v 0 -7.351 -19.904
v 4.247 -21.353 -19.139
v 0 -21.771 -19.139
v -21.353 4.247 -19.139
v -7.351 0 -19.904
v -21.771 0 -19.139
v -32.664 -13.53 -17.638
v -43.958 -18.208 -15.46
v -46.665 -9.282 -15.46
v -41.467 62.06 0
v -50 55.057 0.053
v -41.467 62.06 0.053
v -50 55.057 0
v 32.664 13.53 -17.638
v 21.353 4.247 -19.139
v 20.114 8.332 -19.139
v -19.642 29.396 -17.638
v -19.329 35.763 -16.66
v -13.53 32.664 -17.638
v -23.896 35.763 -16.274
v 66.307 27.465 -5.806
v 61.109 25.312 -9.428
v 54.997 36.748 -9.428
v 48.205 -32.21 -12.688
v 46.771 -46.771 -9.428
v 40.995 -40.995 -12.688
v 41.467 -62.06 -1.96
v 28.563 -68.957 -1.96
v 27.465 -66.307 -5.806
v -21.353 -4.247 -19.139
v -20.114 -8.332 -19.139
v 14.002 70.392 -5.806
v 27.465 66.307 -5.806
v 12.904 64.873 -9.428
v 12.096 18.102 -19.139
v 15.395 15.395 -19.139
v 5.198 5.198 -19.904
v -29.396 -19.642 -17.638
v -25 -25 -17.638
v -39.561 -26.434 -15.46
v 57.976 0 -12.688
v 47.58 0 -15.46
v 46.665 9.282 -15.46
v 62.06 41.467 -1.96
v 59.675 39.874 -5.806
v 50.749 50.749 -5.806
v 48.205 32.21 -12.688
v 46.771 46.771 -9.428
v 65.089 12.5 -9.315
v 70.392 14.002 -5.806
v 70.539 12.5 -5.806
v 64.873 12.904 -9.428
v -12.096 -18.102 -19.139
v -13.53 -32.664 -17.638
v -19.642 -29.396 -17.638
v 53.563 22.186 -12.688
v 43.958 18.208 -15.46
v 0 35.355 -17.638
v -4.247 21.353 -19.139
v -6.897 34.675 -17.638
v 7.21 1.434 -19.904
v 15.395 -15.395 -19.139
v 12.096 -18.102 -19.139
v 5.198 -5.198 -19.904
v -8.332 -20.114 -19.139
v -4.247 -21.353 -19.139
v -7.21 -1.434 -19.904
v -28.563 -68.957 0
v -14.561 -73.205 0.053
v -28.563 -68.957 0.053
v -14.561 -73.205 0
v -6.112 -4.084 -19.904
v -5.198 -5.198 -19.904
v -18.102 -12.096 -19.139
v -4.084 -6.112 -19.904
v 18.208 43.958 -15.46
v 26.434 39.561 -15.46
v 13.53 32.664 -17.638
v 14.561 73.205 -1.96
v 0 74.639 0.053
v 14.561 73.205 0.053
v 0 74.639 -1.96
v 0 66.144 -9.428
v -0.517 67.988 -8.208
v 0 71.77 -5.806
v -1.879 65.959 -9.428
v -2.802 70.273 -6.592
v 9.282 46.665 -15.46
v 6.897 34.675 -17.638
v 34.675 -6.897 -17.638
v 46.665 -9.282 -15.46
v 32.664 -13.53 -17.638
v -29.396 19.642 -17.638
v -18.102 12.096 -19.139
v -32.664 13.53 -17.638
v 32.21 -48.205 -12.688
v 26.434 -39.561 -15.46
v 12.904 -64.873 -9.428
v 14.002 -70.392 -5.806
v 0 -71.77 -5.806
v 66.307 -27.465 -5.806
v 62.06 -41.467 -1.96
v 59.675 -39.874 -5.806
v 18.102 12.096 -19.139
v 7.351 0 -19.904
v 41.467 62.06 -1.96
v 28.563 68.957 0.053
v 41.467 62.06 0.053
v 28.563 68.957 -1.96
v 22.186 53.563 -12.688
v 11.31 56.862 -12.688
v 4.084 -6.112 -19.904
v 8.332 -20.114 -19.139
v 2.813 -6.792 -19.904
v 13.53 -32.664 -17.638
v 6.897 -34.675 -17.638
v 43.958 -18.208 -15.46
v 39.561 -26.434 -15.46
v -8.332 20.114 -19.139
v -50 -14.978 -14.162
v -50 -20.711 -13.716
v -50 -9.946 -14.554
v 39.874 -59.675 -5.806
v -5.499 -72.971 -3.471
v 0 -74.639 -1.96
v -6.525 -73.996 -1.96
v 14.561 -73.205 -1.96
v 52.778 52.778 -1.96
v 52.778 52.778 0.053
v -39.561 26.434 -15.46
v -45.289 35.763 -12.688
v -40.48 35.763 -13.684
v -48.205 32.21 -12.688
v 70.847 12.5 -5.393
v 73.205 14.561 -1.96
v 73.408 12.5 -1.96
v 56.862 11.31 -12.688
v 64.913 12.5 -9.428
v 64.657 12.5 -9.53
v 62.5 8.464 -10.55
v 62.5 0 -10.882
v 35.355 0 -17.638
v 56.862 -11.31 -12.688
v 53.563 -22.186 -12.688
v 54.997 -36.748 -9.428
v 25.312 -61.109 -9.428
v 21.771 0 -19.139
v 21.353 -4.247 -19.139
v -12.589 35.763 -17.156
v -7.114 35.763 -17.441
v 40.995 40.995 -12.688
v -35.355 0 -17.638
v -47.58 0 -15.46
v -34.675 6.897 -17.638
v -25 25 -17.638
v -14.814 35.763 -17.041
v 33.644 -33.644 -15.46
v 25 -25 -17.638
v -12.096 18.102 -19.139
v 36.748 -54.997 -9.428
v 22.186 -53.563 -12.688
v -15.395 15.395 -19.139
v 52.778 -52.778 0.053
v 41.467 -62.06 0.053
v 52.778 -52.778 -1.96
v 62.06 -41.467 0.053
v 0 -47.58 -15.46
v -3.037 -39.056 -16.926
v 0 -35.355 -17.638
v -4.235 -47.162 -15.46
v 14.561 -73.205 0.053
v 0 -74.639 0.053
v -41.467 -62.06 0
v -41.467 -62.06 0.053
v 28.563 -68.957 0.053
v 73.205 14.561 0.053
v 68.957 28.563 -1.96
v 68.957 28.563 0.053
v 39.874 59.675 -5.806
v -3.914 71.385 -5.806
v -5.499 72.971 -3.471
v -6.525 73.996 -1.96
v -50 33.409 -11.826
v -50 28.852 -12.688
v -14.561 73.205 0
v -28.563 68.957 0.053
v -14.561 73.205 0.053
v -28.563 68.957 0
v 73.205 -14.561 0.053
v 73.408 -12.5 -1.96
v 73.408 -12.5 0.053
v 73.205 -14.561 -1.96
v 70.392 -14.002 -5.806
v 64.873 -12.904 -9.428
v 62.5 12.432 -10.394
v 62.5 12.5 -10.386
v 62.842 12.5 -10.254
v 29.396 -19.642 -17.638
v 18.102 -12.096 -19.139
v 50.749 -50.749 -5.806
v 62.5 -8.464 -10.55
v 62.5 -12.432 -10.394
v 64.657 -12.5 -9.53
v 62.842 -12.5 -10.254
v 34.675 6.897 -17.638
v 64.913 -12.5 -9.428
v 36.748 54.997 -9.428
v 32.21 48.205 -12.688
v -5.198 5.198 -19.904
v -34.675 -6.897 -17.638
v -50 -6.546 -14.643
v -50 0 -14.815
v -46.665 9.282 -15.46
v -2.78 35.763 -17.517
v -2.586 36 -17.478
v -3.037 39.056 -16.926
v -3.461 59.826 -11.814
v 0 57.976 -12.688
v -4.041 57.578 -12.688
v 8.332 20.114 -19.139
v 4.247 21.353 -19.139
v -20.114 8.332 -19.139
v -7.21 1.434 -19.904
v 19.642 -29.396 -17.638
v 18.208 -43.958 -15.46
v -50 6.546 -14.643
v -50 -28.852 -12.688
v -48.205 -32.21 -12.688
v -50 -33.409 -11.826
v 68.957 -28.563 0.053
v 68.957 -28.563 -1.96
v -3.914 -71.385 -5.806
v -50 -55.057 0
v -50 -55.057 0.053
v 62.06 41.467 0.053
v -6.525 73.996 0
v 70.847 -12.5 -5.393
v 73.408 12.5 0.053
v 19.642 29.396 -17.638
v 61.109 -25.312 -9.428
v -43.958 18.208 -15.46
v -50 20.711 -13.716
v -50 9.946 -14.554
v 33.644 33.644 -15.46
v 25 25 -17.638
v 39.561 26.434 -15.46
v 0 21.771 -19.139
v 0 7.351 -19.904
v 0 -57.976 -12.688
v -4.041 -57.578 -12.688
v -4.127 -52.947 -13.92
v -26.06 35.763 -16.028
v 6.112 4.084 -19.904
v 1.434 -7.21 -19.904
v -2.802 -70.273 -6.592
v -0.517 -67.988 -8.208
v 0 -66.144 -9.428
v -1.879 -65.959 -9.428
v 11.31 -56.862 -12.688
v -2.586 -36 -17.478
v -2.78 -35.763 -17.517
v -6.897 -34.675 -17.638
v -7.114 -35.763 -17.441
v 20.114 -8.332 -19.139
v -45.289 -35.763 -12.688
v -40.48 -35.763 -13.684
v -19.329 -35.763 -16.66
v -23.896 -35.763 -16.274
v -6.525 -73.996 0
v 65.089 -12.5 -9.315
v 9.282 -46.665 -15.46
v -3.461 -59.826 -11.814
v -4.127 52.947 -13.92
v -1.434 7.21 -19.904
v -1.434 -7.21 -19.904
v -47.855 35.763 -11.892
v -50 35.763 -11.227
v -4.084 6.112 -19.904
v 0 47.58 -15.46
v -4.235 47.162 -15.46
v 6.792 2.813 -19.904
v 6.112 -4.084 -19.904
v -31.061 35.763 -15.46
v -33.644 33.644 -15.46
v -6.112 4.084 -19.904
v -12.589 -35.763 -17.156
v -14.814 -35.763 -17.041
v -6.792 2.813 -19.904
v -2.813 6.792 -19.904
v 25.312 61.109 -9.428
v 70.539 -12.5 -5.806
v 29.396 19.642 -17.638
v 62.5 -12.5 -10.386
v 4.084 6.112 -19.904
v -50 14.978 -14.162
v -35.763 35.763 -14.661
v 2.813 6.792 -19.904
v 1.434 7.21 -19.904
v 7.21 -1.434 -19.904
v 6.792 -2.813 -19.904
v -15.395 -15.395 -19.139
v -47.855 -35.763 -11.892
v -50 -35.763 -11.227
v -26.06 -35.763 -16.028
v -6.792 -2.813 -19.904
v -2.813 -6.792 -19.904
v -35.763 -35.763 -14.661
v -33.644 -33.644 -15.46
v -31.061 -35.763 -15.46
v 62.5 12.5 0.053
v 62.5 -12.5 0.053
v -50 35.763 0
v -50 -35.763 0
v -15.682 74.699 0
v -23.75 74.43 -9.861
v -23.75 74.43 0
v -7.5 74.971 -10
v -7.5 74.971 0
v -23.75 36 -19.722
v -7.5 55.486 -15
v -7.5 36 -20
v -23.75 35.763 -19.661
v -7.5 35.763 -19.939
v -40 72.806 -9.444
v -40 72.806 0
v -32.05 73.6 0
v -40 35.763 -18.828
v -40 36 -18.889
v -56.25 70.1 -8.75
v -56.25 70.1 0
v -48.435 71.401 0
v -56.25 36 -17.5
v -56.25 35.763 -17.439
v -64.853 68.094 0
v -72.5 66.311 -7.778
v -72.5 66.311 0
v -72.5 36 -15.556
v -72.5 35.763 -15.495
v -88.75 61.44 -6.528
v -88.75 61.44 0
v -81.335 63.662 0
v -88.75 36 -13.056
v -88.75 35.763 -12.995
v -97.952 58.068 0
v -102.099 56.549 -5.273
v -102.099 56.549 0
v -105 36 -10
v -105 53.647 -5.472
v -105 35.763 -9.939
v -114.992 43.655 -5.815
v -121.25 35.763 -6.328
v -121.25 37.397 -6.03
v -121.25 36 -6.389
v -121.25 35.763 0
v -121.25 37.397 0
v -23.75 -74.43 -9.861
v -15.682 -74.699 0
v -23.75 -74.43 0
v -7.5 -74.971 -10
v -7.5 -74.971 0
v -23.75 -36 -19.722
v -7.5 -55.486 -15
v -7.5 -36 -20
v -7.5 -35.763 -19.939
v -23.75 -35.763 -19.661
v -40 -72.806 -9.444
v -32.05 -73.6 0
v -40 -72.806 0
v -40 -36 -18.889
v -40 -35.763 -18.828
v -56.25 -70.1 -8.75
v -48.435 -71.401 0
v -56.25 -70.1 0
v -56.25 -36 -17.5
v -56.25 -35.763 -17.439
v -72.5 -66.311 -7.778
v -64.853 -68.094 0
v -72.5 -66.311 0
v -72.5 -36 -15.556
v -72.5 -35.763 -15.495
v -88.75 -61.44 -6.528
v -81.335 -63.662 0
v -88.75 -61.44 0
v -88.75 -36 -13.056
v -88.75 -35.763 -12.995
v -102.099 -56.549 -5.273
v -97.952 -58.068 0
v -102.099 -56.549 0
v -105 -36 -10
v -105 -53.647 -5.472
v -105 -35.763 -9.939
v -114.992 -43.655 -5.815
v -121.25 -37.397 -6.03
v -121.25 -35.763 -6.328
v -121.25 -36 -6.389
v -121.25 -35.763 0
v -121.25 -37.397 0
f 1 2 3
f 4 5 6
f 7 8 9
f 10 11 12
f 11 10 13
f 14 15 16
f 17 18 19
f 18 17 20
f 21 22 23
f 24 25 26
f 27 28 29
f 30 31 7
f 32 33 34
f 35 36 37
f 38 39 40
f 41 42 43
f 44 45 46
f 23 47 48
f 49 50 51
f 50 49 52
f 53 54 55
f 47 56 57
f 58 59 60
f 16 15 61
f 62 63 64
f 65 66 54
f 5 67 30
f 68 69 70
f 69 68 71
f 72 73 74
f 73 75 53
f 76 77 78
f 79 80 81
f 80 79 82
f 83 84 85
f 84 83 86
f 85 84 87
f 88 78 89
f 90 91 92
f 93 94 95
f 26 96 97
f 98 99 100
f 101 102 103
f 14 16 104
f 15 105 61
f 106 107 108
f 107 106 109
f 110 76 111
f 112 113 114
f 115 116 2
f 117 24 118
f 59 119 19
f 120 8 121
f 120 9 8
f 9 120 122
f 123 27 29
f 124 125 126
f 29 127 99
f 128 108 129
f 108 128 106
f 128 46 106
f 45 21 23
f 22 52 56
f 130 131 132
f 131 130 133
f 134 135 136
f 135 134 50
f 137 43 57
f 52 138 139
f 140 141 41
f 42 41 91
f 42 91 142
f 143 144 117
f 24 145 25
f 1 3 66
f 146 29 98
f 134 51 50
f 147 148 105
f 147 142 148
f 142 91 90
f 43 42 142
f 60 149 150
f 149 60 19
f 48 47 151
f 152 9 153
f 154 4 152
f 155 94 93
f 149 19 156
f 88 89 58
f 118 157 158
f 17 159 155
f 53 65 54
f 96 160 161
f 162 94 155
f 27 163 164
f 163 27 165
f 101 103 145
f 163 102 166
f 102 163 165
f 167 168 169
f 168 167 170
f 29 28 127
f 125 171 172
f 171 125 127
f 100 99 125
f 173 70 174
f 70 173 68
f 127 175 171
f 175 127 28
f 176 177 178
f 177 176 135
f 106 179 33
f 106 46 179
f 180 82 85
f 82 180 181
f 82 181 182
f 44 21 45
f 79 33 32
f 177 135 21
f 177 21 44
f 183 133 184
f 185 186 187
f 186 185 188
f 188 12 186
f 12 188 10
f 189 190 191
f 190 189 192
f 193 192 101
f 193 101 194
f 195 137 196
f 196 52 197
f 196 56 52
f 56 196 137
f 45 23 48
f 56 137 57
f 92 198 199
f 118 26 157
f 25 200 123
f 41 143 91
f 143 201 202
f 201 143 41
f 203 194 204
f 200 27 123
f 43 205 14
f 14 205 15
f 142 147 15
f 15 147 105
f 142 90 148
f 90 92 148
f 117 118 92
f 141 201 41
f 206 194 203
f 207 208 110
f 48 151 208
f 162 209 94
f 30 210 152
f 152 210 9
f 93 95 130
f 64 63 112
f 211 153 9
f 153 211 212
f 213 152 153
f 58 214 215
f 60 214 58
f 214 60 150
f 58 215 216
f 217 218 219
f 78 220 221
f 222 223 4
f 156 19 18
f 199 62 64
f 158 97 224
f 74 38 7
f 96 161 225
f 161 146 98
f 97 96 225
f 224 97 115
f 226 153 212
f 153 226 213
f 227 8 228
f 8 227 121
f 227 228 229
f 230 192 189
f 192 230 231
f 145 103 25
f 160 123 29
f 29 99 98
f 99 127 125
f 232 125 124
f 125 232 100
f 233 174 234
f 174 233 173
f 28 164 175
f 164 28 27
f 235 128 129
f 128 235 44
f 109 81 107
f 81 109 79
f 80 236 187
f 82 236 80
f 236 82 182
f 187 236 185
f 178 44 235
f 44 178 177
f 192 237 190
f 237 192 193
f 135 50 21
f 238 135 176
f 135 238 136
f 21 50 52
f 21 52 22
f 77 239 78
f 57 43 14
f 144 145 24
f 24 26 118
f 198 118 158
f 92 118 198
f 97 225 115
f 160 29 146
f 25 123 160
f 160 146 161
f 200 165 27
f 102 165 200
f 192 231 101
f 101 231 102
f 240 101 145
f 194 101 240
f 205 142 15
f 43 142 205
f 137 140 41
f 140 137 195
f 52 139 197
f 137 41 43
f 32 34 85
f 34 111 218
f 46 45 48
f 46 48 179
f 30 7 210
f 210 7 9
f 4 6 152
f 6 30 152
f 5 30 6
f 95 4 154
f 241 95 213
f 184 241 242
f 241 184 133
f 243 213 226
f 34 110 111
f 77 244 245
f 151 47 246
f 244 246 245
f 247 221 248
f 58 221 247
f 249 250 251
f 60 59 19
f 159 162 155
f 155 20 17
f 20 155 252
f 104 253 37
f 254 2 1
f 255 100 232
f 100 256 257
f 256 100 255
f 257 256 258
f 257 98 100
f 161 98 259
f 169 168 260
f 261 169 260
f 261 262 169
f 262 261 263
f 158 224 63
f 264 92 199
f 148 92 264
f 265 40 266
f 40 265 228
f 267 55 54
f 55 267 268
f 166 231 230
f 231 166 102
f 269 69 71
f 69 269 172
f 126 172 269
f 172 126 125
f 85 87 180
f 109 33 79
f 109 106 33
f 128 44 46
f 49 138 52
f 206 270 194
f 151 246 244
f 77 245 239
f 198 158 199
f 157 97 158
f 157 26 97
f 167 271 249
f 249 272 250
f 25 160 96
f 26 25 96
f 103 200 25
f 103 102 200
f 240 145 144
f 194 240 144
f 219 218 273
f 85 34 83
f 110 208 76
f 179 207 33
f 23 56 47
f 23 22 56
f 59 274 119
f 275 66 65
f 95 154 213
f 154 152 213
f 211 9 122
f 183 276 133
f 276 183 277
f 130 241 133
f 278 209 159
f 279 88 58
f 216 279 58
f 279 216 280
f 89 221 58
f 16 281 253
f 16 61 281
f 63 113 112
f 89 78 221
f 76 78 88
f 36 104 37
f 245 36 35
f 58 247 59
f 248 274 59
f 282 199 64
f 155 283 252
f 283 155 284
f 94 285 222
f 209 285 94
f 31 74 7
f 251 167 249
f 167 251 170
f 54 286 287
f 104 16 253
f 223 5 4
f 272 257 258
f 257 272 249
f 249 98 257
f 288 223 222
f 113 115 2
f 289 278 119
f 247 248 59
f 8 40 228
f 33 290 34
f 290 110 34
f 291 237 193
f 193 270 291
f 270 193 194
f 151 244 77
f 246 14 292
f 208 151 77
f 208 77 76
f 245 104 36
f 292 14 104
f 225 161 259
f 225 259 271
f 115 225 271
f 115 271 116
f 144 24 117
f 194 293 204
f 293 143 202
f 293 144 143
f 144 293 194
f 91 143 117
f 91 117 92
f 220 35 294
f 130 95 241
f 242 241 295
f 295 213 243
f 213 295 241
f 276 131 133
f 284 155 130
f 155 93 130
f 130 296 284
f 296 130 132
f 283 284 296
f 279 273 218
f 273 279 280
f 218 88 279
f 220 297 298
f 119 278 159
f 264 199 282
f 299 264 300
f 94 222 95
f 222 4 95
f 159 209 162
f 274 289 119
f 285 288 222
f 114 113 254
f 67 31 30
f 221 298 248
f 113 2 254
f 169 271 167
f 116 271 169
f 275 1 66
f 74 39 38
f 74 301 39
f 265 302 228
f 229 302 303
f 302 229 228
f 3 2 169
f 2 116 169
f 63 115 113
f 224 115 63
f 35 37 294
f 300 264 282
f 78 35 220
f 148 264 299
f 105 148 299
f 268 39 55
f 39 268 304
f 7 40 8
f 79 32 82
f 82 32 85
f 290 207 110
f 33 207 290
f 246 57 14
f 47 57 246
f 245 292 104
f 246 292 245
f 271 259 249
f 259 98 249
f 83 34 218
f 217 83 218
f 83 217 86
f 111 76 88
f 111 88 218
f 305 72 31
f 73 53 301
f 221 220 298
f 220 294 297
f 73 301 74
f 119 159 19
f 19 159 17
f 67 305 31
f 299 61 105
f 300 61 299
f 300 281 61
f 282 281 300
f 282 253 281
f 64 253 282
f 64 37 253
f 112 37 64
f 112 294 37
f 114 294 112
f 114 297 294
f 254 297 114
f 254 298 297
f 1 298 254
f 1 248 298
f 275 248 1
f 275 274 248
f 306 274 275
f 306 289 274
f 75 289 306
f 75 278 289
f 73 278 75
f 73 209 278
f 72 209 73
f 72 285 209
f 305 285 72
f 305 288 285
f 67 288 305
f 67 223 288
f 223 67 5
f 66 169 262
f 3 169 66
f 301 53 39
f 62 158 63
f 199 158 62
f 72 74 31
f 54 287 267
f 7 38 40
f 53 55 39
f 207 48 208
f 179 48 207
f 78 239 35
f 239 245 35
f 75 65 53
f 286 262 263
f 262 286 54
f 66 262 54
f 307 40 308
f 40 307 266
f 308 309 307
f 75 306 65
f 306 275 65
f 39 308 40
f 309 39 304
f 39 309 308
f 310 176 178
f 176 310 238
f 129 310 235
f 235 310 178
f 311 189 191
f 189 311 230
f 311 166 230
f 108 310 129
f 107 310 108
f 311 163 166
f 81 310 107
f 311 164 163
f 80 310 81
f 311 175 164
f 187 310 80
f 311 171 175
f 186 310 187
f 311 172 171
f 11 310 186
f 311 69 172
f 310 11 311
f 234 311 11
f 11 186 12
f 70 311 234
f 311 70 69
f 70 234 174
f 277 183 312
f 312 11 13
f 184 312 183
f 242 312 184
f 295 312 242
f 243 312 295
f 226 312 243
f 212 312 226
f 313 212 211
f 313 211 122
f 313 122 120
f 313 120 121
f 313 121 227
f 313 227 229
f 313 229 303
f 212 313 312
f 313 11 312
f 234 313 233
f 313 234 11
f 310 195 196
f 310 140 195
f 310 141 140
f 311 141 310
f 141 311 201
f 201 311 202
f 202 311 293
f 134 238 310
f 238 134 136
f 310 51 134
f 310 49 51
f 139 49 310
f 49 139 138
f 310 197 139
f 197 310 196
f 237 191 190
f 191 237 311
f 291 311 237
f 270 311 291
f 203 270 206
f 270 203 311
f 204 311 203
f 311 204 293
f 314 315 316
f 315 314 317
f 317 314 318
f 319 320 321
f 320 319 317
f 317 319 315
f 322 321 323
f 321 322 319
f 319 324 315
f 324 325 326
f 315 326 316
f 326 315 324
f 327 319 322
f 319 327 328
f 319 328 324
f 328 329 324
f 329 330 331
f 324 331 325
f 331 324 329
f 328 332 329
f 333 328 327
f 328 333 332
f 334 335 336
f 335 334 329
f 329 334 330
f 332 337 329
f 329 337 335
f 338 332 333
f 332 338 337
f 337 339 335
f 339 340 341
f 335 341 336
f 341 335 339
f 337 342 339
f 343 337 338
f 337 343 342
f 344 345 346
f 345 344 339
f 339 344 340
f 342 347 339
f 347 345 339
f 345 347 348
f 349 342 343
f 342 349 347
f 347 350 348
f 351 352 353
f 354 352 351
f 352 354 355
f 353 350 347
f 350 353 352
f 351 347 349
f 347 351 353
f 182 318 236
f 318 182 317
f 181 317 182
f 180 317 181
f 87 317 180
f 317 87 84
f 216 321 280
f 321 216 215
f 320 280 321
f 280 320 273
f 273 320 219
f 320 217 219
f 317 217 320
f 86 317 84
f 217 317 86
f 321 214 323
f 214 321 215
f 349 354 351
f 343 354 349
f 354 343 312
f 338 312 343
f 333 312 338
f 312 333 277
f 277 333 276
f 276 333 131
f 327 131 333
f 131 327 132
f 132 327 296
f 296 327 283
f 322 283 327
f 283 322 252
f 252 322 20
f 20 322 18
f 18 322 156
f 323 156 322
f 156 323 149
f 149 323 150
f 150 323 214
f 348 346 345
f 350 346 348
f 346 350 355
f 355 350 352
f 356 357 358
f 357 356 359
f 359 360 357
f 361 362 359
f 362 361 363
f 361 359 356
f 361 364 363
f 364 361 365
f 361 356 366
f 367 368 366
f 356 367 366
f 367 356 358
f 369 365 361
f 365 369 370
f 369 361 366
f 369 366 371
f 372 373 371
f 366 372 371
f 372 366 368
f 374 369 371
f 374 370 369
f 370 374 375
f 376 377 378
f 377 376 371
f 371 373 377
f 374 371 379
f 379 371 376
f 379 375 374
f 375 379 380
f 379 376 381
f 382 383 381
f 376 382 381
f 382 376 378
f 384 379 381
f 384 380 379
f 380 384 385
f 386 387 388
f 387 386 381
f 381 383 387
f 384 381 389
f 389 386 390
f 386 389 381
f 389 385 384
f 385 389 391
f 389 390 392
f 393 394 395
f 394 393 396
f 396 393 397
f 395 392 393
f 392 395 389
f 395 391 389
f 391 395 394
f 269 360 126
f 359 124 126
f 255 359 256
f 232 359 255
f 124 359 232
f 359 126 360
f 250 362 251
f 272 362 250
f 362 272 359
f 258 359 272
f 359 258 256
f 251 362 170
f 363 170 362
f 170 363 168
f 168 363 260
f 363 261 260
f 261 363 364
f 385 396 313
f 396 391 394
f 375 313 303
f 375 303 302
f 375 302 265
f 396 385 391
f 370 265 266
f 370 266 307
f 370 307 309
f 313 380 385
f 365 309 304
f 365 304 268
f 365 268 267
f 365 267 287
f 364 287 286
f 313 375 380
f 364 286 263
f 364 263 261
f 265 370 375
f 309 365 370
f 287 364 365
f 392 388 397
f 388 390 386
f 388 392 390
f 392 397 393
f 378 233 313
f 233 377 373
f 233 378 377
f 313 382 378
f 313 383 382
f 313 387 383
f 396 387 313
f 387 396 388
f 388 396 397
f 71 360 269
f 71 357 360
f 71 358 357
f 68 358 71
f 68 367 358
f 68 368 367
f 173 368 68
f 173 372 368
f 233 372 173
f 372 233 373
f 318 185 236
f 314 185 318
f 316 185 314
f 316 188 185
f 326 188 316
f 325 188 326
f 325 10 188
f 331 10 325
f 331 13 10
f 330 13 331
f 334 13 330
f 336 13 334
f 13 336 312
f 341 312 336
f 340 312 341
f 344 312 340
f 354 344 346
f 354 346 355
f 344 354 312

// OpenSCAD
// file: ../lib/util.scad
fn1 = 32;
fn2 = 16;

module util_half_sphere(radius, fn=fn1) {
    difference() {
        sphere(radius, $fn=fn);
        translate([0,0,-(radius+radius/19)])
            cube(2*radius+radius/10, center=true);
    }
}

function gcd(a,b) = a == b ? a : a > b ? gcd(a-b, b) : gcd(a, b-a);

module util_saucer(length, width, height, fn=fn1) {
    rad = gcd(length,gcd(width,height));
    //rad = 10;
    scale([length/(2*rad), width/(2*rad), height/rad])
        util_half_sphere(rad, fn);
}

module util_half_cylinder(length, radius, inner_fn=fn2, outer_fn=fn1) {
    maxval = max(length, 2*radius);
    intersection() {
        difference() {
            rotate([0,90,0])
                translate([0,0,-(length/2 + length/20)])
                    cylinder(length+length/10, radius, radius, $fn=inner_fn);
            
            translate([0,0,(maxval/2 + maxval/19)])
                cube(maxval+maxval/10, center=true);
        }
        
        translate([0,0,-(radius+radius/20)])
            cylinder(radius + radius/10, length/2, length/2, $fn=outer_fn);
    }
}

module util_body(length, width, height, upper_height, fn=fn1) {
    rad = gcd(length, gcd(width, upper_height));
    
    scale(.995) scale([length/(2*rad), width/(2*rad), 1])
        util_half_cylinder(2*rad, height, outer_fn=fn);
}

module util_graded_cylinder(height, radius_start, radius_end, grades=1, fn=fn1) {
    height_grade = height / grades;
    radius_grade = (radius_start - radius_end) / (grades * grades);
    for (i = [0 : 1 : grades]) {
        translate([0,0,i*height_grade])
            cylinder(height_grade, 
                     radius_start - i*radius_grade * i,
                     radius_start - (i+1) * radius_grade * (i+1),
                     $fn = fn);
    }
}

module util_nacelle(length, width, height, curved=false, up=true, front_bulge=false) {
    rad = min(width, height/2);
    grads = curved ? 6 : 1;
    scale_factor = front_bulge ? 1.1 : 1;
    direction = up ? -1 : 1;
    difference() {
        scale([1, width/ (2*rad), height/rad])
            difference() {
                union() {
                    rotate([0,-90,0])
                        rotate(30)
                            util_graded_cylinder(length-rad, rad, rad/2, grads, 6);
                    scale(scale_factor) 
                        rotate([0,90,0]) rotate(90) sphere(rad, $fn=6);
                }
                
                translate([-length/2, 0, direction * (height/2 + height/19)])
                    cube([length+length, width+width, height+height/10], center=true);
            }
        
        translate([-length-(curved?length/3:0), 0, -length/3])
            rotate([0,-45,0])
                cube(length, center=true);
    }
}

module util_mirrored(v) {
    children();
    mirror(v) children();
}

module util_ring(outer, inner, height) {
    difference() {
        translate([0,0,-height/2])
            cylinder(height, outer, outer);
        translate([0,0,-(height/2 + height/19)])
            cylinder(height+height/10, inner, inner);
    }
}

module util_star(radius, thick, num, half=false) {
    angle = 360/num;
    offset = half? angle/2 : 0;
    for (i = [0: 1: num]) {
        rotate(i* angle + offset)
            translate([radius/2,0,0])
                cube([radius, thick, thick], center=true);
    }
}

module util_ring_star(radius, thick, num, inner, half=false) {
    outer=inner+thick;
    avg = (inner + outer)/2;
    union() {
        difference() {
            util_star(radius, thick, num, half);
            cylinder(2*thick, outer, outer, $fn=num, center=true);
        }
        util_ring(outer, inner, thick);
    }
}

module util_hangar_disk(height, lower, upper, num, fn=fn1) {
    difference() {
            cylinder(height, lower, upper, $fn=fn, center=true);
        difference() {
            scale([1,1,22])
                util_star(1.1*upper, height/20, num, half=true);
            scale(.95)
                cylinder(height, lower, upper, $fn=fn, center=true);
        }
    }
}

module util_hangar_form(length, width, height, num, inner=0) {
    l = 0.6* max(length, width);
    h = 2.5* height;
    thick = min(height/20,1);
    inner = inner == 0 ? l/3 : inner;
    difference() {
        children();
        scale([1,1,h/thick]) 
            util_ring_star(l, thick, num, inner, half=true);
    }
    scale(.95) children();
}

module util_nacelle_bar(span, height, width, thickness) {
    rad = (span*span/(8*height) + height/2);
    outer = rad + thickness/2;
    inner = rad - thickness/2;
    difference(){
        translate([0,0,outer])
            rotate([0,90,0])
                util_ring(outer, inner, width);
    
        translate([0,0,1.1*outer+height])
            cube(2.2*outer, center=true);
    }
}

module util_q_sphere(rad, quadrant, faces) {
    x_sign = quadrant == 1 ? 1 :
             quadrant == 2 ? -1 :
             quadrant == 3 ? -1 :
             quadrant == 4 ? 1 : 0;
    z_sign = quadrant == 1 ? 1 :
             quadrant == 2 ? 1 :
             quadrant == 3 ? -1 :
             quadrant == 4 ? -1 : 0;
    
    difference() {
        sphere(rad, $fn=faces);

        translate([x_sign*(-1.1*rad - .01),0,0])
        cube(2.2*rad, center=true);

        translate([0,0,z_sign*(-1.1*rad - .01)])
        cube(2.2*rad, center=true);
    }
}

module util_ovoid(front_rad, back_rad, width, upper_rad, lower_rad, faces=32) {
    half_width = width/2;
    largest=max(front_rad, back_rad, half_width, upper_rad, lower_rad);
    smallest=min(front_rad, back_rad, half_width, upper_rad, lower_rad);
    
    union() {
        scale([front_rad/smallest, half_width/smallest, upper_rad/smallest])
        util_q_sphere(smallest, 1, faces);
        
        scale([front_rad/smallest, half_width/smallest, lower_rad/smallest])
        util_q_sphere(smallest, 4, faces);
        
        scale([back_rad/smallest, half_width/smallest, lower_rad/smallest])
        util_q_sphere(smallest, 3, faces);
        
        scale([back_rad/smallest, half_width/smallest, upper_rad/smallest])
        util_q_sphere(smallest, 2, faces);
    }
}
// main file
use <../lib/util.scad>;


module mvm_escort() {
    
    difference() {
        mirror([0,0,1]) util_saucer(150,150,20);
            
        translate([-90-50,0,0])
        cube(180,center=true);
    
        translate([75,0,0])
        cube([25,25,60], center=true);
    }

    difference() {
        util_mirrored([0,1,0])
        translate([-7.5,36,0])
        rotate([90,0,0])
        util_nacelle(120,40,45,curved=true, up=false);
        
        translate([0,0,250])
        cube(500,center=true);
    }
}

mvm_escort();
